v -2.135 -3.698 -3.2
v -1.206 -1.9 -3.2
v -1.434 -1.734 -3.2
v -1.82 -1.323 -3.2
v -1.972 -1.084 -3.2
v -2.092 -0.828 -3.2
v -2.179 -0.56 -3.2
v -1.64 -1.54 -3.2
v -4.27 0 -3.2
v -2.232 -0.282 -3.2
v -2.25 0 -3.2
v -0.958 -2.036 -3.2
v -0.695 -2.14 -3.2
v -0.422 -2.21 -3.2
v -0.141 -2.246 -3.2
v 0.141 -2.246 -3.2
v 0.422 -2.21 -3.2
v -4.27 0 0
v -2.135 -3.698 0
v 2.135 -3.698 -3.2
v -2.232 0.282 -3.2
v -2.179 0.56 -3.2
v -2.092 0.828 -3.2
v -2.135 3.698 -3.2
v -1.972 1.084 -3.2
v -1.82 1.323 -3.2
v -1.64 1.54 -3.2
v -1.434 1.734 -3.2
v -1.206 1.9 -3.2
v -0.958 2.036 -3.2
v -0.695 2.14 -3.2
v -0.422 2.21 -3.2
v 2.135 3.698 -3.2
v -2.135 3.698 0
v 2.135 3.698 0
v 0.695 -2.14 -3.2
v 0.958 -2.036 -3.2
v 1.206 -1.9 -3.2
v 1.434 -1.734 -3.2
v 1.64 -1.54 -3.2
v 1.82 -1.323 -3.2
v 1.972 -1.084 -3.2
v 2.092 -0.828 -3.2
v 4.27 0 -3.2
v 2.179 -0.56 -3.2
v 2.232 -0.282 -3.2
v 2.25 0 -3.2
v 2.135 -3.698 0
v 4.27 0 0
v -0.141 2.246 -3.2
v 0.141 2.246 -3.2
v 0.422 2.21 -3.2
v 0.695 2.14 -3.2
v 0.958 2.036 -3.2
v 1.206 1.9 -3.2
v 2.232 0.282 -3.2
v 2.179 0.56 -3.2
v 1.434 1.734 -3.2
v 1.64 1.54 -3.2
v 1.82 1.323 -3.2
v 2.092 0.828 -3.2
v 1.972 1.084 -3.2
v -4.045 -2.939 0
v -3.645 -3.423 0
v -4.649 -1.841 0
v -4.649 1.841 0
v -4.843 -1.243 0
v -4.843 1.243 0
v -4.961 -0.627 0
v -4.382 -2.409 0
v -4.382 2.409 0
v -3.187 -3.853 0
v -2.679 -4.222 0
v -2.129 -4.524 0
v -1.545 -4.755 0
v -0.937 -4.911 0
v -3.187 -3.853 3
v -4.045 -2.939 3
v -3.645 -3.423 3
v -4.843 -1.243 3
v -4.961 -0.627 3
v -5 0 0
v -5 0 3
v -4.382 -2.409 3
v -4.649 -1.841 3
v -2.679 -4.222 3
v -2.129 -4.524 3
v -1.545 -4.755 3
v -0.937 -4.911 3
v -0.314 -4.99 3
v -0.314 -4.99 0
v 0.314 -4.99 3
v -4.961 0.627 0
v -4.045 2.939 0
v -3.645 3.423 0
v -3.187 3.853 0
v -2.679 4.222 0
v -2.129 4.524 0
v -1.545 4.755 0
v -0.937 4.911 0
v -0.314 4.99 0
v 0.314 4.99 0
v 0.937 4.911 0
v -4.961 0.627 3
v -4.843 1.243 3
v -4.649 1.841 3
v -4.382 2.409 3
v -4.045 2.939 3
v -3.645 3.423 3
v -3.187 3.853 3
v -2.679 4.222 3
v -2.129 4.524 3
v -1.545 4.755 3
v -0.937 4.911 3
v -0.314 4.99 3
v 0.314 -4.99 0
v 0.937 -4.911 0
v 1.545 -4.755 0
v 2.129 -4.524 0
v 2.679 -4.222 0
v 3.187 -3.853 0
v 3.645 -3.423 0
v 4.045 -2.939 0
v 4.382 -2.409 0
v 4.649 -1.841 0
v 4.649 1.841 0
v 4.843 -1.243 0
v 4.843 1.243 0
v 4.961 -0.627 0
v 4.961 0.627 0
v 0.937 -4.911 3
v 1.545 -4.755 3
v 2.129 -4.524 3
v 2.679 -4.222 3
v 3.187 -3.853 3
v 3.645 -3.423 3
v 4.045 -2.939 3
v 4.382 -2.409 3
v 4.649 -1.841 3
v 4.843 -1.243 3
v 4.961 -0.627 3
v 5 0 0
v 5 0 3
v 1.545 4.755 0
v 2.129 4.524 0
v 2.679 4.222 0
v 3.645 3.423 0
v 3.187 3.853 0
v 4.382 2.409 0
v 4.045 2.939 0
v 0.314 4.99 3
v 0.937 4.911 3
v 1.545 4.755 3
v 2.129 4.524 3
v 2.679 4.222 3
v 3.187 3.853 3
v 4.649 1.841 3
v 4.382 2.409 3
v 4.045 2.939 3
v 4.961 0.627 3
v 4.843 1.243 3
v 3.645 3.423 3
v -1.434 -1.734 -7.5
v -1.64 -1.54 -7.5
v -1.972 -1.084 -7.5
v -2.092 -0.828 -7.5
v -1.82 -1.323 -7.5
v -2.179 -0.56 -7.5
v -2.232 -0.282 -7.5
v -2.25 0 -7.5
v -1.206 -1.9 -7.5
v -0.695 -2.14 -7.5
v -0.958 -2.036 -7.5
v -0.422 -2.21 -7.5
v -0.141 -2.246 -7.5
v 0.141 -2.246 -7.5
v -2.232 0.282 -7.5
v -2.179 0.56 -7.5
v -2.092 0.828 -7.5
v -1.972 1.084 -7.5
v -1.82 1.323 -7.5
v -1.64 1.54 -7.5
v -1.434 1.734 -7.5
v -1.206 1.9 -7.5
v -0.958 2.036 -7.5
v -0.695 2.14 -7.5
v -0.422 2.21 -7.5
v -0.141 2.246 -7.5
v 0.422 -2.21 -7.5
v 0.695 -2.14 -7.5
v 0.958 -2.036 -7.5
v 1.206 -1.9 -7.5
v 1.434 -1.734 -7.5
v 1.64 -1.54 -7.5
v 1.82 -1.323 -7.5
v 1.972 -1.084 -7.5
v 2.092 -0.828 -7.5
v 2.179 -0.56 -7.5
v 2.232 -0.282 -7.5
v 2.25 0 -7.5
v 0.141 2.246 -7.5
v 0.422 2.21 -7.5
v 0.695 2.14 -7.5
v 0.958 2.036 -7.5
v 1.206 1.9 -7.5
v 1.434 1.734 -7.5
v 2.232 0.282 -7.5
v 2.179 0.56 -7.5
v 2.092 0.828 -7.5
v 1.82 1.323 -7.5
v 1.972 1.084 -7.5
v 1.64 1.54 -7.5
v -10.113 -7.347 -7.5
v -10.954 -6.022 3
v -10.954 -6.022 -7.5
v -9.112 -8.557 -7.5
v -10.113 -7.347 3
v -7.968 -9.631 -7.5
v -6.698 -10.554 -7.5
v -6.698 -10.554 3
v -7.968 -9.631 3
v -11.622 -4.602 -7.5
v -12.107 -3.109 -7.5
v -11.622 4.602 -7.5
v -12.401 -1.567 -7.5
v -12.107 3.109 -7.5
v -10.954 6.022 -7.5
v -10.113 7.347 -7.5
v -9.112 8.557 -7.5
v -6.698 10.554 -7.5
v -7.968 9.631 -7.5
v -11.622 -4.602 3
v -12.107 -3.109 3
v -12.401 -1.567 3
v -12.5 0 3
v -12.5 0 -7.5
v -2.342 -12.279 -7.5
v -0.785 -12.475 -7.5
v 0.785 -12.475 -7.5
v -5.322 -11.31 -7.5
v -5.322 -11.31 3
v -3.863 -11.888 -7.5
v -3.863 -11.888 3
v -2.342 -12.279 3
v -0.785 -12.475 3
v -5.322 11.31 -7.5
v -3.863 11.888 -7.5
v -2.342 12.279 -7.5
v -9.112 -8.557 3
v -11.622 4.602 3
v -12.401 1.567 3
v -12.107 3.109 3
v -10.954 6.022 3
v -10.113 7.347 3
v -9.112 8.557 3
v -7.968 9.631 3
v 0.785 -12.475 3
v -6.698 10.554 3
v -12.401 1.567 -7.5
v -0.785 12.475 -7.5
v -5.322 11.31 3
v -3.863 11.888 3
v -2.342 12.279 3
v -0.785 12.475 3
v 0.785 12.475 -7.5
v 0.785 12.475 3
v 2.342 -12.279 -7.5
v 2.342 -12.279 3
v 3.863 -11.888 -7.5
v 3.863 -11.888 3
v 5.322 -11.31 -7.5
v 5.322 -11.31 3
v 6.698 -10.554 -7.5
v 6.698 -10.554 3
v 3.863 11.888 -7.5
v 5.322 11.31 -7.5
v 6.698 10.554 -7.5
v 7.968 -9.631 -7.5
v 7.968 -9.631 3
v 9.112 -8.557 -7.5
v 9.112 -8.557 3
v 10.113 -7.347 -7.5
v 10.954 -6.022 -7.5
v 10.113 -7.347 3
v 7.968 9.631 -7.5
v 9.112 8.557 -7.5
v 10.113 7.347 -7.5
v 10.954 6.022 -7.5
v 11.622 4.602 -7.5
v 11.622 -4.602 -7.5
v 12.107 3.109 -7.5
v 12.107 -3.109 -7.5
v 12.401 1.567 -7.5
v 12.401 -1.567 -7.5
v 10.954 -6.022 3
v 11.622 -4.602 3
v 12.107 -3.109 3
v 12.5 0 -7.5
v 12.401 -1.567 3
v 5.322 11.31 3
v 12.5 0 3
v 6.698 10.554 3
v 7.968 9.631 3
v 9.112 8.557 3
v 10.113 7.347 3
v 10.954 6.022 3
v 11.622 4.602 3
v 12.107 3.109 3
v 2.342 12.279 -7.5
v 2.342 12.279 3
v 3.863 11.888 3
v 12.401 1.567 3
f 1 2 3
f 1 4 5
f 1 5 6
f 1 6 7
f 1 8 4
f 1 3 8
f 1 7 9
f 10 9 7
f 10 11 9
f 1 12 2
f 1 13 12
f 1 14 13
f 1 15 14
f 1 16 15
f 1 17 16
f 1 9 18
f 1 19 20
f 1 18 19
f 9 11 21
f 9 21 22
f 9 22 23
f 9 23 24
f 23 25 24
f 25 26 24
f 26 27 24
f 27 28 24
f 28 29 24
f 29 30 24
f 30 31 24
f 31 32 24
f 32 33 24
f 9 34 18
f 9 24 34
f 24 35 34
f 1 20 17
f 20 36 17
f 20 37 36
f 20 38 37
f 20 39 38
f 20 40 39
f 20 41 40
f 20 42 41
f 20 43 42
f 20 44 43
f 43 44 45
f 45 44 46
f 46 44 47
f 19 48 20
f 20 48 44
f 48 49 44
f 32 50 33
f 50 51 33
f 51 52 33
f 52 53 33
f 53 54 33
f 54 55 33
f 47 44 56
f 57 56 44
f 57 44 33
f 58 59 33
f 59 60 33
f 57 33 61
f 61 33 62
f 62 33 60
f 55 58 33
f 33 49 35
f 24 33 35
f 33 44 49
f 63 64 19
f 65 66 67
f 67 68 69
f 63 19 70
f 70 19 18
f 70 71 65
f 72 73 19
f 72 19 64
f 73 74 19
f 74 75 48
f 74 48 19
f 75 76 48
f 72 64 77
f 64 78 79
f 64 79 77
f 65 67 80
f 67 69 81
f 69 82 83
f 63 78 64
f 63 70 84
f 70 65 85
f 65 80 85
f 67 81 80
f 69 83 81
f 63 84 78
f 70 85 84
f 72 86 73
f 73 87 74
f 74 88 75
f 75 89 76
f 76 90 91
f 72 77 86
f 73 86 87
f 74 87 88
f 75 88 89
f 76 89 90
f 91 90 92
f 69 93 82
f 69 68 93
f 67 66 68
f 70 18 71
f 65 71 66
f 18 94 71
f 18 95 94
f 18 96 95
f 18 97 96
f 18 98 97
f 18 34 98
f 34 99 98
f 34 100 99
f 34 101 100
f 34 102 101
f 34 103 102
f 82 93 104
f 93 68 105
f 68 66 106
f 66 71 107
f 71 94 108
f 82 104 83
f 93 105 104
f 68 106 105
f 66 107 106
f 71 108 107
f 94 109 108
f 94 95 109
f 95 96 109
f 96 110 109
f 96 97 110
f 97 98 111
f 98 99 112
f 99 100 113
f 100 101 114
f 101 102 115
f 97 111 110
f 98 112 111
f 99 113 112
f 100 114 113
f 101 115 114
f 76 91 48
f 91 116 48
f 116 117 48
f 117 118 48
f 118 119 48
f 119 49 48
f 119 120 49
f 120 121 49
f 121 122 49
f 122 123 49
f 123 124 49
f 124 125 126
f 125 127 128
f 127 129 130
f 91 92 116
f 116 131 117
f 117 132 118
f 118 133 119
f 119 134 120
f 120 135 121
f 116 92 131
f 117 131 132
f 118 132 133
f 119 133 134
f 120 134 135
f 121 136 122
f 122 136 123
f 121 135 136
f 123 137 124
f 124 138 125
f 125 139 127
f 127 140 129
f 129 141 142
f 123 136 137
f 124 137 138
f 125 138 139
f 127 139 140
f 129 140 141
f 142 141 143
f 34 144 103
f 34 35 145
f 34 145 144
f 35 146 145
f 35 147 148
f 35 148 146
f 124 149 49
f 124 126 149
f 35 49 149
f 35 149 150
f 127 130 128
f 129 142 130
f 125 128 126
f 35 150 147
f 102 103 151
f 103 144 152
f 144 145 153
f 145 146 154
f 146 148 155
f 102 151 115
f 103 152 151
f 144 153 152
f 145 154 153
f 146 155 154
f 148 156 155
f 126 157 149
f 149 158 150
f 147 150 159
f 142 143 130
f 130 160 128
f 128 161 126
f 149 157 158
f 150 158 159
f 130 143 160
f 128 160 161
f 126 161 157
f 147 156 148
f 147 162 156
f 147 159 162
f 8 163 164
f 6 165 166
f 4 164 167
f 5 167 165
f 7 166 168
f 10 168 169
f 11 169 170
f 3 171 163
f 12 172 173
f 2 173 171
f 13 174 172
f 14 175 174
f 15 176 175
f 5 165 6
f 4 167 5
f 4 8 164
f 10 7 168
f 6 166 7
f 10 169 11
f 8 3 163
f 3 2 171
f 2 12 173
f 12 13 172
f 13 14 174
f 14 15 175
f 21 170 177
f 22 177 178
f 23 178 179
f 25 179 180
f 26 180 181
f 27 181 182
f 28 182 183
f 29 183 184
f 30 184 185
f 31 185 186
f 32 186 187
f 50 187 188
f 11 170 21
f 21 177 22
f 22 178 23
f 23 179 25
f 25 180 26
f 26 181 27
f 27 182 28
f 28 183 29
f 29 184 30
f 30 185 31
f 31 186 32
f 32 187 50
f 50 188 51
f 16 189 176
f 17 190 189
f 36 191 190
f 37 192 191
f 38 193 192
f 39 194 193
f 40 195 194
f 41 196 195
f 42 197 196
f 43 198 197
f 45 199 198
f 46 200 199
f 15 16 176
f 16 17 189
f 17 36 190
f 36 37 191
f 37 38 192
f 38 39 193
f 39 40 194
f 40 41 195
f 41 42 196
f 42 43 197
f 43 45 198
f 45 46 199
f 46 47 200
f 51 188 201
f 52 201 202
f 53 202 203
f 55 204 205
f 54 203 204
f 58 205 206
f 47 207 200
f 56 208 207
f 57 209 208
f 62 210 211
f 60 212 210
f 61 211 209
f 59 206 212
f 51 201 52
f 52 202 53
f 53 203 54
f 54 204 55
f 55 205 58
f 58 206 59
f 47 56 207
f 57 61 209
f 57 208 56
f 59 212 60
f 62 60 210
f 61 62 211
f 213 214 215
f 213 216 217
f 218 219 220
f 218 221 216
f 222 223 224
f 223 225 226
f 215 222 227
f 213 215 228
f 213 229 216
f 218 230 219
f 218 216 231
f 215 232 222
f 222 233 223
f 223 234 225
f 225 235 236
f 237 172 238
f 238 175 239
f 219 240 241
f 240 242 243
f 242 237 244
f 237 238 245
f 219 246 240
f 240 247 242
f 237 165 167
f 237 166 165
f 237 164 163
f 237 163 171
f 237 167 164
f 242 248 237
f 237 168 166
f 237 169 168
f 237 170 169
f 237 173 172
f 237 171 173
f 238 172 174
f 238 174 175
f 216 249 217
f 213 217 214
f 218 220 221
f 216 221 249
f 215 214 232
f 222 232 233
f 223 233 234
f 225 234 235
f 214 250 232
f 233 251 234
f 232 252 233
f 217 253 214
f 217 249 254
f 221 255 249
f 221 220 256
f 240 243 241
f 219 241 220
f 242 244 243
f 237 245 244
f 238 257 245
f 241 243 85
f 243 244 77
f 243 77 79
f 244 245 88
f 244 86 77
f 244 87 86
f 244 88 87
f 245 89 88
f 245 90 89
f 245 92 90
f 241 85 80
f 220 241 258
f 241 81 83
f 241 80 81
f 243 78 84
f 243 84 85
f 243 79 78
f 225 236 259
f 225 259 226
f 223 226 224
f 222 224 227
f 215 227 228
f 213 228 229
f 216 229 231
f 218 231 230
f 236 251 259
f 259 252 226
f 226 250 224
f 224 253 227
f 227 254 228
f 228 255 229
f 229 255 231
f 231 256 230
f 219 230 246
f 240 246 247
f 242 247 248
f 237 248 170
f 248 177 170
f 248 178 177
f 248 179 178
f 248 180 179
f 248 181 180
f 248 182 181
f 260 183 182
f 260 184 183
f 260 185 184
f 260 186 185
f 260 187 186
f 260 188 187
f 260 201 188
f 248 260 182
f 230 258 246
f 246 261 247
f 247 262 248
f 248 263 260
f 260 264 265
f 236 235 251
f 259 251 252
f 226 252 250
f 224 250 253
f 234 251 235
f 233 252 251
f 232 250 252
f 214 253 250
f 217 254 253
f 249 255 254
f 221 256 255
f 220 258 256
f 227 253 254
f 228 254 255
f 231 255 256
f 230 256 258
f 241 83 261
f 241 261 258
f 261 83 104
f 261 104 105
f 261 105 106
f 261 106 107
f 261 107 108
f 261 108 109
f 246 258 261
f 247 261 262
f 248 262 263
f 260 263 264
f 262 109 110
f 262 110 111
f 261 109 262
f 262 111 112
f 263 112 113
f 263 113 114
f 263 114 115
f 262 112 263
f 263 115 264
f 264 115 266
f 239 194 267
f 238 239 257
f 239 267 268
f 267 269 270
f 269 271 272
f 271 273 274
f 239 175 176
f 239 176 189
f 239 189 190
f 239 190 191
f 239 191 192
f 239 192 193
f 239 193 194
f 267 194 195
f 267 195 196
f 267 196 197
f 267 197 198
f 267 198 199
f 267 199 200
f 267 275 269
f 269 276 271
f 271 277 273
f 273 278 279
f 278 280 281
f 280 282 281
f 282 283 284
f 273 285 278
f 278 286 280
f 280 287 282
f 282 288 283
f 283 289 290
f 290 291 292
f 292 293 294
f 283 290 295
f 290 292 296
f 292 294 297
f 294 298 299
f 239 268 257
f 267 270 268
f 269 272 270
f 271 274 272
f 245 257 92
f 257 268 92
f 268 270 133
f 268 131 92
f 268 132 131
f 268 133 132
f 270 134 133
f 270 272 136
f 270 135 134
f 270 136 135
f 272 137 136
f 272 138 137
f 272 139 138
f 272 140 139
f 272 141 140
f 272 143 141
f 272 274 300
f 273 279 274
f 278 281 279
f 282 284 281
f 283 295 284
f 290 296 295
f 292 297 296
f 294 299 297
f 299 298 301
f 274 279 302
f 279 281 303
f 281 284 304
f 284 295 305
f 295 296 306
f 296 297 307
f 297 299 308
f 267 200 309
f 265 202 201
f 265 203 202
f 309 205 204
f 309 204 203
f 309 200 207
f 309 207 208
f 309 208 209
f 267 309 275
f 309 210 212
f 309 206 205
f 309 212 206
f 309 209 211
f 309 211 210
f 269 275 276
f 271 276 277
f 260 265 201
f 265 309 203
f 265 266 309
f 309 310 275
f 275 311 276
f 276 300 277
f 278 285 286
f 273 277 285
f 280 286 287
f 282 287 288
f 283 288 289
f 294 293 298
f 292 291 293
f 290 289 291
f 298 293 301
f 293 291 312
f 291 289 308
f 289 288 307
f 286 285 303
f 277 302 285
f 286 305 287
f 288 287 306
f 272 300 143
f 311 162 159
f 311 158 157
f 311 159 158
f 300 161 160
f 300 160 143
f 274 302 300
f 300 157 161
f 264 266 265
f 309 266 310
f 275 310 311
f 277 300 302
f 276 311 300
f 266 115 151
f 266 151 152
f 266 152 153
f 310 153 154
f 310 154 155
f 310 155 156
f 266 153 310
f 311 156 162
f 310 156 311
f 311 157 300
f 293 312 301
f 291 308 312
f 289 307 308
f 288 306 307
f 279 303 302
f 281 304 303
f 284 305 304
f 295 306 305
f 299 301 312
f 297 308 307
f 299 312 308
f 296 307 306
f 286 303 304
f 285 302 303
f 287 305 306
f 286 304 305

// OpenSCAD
$fn = 50;

difference() {
	union() {
		translate(v = [0, 0, -7.5]) {
			cylinder(h = 10.5, r = 12.5);
		}
	}
	union() {
		translate(v = [0, 0, 0]) {
			rotate(a = [0, 0, 0]) {
				difference() {
					union() {
						translate(v = [0, 0, -3.2]) {
							linear_extrude(height = 3.2) {
								polygon(points = [[4.2698, 0.0], [2.1349000000000005, 3.697755269078796], [-2.134899999999999, 3.6977552690787965], [-4.2698, 5.228996902999369e-16], [-2.134900000000002, -3.6977552690787956], [2.1348999999999974, -3.697755269078798]]);
							}
						}
					}
					union();
				}
			}
		}
		#cylinder(h = 3, r = 5.0);
		#translate(v = [0, 0, -100.0]) {
			cylinder(h = 200, r = 2.25);
		}
	}
}
